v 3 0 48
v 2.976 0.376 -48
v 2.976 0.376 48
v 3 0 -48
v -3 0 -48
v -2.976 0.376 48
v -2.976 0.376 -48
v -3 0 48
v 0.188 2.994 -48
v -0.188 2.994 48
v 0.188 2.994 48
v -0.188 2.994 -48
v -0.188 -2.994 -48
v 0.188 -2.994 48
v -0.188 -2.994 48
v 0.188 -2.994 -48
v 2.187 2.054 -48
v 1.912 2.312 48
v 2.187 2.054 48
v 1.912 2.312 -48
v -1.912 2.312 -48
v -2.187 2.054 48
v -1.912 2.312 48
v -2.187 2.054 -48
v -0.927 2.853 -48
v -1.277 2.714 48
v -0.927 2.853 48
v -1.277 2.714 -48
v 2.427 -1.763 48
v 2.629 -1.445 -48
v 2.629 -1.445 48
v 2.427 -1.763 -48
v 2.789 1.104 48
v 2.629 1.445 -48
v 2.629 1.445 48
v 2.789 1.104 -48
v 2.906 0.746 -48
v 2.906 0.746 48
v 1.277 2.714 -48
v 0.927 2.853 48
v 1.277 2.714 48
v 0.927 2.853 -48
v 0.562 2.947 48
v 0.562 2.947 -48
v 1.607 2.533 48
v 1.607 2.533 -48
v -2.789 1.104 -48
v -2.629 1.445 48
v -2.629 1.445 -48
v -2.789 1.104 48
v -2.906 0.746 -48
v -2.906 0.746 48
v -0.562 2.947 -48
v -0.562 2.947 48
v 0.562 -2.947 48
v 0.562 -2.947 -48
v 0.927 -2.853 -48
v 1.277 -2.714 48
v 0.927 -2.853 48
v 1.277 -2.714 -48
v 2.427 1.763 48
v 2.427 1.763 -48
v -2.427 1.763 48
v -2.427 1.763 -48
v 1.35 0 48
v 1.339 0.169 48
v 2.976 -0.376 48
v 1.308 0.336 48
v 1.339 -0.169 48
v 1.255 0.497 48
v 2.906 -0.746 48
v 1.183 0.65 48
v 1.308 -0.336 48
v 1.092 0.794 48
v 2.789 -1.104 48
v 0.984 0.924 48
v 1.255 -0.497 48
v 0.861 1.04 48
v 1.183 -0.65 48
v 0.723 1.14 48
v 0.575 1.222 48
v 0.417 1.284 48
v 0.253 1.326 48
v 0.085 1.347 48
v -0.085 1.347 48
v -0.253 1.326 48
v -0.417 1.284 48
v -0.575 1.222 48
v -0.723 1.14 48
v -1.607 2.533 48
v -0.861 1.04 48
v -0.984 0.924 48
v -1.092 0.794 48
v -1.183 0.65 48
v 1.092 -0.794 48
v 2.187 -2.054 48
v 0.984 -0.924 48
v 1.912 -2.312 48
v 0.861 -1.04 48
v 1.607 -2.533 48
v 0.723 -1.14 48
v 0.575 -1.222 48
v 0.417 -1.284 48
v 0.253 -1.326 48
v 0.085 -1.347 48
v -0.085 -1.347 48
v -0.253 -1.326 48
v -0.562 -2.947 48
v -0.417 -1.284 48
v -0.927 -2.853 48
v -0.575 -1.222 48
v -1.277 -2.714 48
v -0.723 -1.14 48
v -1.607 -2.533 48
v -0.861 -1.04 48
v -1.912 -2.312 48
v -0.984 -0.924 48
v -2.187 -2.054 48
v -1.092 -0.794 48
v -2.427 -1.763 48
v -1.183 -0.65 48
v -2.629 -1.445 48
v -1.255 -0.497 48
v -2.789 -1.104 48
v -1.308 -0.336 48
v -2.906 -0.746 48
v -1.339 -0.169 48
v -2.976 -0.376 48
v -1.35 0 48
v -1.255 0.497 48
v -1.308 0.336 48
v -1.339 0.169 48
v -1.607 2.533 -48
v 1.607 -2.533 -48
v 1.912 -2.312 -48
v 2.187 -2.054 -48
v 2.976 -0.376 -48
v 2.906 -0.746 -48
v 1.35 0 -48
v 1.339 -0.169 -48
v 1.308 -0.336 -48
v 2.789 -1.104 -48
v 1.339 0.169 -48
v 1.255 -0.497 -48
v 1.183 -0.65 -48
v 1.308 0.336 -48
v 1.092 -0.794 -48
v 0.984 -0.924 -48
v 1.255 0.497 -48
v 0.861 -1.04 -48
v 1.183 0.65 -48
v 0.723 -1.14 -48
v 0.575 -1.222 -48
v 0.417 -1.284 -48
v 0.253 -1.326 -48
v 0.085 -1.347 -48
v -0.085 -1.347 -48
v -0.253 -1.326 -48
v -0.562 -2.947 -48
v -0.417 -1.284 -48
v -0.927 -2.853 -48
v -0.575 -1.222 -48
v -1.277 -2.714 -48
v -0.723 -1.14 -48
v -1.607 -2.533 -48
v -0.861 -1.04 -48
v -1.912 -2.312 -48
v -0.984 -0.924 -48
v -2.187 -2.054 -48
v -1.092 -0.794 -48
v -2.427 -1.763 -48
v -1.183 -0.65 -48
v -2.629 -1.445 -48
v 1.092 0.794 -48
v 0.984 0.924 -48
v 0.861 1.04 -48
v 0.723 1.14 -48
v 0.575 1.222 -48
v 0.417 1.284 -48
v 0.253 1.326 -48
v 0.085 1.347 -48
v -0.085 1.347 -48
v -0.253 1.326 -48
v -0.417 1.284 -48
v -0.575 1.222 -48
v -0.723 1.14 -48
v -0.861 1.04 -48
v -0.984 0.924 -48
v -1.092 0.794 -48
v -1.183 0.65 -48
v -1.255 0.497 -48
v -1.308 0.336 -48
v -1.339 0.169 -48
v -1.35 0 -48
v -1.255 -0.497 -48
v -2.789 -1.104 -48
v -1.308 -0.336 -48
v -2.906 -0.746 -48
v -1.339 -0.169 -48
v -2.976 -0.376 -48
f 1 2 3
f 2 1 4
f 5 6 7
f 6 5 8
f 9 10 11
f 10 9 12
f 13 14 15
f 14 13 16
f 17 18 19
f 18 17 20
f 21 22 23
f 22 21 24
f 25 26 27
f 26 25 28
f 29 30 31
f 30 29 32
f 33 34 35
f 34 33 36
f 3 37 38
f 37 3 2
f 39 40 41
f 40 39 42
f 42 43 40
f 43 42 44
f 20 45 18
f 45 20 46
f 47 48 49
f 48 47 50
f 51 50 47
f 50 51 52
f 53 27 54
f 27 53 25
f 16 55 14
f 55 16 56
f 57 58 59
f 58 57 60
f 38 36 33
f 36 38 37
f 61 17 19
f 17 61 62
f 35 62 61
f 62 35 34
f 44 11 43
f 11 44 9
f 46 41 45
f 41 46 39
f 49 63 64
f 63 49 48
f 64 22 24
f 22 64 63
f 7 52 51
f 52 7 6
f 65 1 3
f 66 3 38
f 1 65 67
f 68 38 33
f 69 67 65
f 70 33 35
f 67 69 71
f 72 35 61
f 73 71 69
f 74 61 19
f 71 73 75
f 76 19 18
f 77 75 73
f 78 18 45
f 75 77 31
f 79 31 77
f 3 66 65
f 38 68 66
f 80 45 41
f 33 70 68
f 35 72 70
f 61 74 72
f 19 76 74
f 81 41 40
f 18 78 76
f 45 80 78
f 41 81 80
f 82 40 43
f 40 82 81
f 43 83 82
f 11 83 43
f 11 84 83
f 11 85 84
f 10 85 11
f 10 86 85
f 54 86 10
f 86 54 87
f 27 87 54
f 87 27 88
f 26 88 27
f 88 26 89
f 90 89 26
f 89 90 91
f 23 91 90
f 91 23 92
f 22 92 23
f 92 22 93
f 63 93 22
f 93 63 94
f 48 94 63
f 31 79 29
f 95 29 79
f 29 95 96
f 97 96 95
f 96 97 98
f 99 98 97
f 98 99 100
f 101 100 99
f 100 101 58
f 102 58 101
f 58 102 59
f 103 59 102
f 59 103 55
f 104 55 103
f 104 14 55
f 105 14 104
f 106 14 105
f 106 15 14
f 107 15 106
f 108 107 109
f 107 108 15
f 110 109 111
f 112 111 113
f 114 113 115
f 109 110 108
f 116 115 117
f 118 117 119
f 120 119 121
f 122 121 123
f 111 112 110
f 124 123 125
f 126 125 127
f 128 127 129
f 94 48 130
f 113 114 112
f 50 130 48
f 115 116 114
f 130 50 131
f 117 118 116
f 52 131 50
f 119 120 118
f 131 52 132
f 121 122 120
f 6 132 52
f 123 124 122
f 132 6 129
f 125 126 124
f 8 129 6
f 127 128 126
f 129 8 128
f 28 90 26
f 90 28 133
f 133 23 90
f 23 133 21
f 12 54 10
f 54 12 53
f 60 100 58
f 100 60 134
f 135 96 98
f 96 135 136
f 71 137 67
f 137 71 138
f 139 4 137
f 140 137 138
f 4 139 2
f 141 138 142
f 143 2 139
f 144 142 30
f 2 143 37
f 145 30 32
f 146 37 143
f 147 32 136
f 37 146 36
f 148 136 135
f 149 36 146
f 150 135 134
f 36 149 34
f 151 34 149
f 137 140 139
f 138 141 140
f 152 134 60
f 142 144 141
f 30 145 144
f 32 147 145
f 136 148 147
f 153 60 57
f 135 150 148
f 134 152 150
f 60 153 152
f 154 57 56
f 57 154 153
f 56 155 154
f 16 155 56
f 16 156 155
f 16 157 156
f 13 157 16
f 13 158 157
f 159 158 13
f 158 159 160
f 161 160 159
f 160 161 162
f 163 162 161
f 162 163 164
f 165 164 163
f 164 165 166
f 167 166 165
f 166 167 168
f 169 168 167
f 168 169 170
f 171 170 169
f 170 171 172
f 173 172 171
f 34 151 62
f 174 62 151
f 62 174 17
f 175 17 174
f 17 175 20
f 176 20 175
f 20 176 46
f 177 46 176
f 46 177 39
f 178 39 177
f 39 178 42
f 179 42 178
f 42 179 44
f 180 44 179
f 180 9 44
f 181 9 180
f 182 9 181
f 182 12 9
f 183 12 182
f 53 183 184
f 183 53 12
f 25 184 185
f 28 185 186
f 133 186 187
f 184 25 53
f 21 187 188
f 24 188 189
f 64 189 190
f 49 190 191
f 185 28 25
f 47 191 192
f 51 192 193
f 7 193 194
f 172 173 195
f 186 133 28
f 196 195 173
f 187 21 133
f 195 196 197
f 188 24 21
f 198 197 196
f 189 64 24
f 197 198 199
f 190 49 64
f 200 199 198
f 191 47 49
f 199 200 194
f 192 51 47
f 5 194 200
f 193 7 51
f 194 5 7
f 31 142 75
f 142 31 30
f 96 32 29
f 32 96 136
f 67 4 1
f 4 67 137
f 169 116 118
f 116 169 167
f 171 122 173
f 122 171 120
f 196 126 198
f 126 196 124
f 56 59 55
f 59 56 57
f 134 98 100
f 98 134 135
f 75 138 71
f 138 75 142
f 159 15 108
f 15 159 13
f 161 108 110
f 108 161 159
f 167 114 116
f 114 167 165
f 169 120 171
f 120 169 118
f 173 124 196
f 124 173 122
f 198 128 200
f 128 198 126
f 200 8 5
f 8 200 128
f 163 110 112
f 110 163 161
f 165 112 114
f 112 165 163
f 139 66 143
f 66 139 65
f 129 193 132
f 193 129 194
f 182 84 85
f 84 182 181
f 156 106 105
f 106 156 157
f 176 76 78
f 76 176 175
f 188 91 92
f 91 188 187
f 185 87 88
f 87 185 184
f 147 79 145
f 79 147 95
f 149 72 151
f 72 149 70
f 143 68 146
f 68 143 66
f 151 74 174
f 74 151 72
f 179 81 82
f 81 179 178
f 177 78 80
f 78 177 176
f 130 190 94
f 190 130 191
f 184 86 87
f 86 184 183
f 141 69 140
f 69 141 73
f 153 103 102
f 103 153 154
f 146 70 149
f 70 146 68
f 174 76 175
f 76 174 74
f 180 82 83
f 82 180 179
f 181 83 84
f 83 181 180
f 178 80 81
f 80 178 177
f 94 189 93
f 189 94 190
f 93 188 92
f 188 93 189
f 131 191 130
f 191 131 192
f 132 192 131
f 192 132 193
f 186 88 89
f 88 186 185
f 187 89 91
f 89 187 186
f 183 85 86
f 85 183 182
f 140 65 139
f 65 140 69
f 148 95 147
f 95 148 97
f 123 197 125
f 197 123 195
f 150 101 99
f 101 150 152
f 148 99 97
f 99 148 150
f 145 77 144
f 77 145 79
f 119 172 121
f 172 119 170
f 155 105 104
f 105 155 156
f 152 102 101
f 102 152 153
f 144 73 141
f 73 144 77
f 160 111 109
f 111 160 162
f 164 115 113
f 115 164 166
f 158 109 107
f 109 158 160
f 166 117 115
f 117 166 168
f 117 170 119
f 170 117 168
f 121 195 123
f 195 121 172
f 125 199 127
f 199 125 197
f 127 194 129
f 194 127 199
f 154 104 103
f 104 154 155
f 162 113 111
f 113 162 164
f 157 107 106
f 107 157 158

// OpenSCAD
$fn = 50;


difference() {
	union() {
		translate(v = [0, 0, -48.0000000000]) {
			cylinder(h = 96, r = 3.0000000000);
		}
	}
	union() {
		translate(v = [0, 0, -100.0000000000]) {
			cylinder(h = 200, r = 1.3500000000);
		}
	}
}
